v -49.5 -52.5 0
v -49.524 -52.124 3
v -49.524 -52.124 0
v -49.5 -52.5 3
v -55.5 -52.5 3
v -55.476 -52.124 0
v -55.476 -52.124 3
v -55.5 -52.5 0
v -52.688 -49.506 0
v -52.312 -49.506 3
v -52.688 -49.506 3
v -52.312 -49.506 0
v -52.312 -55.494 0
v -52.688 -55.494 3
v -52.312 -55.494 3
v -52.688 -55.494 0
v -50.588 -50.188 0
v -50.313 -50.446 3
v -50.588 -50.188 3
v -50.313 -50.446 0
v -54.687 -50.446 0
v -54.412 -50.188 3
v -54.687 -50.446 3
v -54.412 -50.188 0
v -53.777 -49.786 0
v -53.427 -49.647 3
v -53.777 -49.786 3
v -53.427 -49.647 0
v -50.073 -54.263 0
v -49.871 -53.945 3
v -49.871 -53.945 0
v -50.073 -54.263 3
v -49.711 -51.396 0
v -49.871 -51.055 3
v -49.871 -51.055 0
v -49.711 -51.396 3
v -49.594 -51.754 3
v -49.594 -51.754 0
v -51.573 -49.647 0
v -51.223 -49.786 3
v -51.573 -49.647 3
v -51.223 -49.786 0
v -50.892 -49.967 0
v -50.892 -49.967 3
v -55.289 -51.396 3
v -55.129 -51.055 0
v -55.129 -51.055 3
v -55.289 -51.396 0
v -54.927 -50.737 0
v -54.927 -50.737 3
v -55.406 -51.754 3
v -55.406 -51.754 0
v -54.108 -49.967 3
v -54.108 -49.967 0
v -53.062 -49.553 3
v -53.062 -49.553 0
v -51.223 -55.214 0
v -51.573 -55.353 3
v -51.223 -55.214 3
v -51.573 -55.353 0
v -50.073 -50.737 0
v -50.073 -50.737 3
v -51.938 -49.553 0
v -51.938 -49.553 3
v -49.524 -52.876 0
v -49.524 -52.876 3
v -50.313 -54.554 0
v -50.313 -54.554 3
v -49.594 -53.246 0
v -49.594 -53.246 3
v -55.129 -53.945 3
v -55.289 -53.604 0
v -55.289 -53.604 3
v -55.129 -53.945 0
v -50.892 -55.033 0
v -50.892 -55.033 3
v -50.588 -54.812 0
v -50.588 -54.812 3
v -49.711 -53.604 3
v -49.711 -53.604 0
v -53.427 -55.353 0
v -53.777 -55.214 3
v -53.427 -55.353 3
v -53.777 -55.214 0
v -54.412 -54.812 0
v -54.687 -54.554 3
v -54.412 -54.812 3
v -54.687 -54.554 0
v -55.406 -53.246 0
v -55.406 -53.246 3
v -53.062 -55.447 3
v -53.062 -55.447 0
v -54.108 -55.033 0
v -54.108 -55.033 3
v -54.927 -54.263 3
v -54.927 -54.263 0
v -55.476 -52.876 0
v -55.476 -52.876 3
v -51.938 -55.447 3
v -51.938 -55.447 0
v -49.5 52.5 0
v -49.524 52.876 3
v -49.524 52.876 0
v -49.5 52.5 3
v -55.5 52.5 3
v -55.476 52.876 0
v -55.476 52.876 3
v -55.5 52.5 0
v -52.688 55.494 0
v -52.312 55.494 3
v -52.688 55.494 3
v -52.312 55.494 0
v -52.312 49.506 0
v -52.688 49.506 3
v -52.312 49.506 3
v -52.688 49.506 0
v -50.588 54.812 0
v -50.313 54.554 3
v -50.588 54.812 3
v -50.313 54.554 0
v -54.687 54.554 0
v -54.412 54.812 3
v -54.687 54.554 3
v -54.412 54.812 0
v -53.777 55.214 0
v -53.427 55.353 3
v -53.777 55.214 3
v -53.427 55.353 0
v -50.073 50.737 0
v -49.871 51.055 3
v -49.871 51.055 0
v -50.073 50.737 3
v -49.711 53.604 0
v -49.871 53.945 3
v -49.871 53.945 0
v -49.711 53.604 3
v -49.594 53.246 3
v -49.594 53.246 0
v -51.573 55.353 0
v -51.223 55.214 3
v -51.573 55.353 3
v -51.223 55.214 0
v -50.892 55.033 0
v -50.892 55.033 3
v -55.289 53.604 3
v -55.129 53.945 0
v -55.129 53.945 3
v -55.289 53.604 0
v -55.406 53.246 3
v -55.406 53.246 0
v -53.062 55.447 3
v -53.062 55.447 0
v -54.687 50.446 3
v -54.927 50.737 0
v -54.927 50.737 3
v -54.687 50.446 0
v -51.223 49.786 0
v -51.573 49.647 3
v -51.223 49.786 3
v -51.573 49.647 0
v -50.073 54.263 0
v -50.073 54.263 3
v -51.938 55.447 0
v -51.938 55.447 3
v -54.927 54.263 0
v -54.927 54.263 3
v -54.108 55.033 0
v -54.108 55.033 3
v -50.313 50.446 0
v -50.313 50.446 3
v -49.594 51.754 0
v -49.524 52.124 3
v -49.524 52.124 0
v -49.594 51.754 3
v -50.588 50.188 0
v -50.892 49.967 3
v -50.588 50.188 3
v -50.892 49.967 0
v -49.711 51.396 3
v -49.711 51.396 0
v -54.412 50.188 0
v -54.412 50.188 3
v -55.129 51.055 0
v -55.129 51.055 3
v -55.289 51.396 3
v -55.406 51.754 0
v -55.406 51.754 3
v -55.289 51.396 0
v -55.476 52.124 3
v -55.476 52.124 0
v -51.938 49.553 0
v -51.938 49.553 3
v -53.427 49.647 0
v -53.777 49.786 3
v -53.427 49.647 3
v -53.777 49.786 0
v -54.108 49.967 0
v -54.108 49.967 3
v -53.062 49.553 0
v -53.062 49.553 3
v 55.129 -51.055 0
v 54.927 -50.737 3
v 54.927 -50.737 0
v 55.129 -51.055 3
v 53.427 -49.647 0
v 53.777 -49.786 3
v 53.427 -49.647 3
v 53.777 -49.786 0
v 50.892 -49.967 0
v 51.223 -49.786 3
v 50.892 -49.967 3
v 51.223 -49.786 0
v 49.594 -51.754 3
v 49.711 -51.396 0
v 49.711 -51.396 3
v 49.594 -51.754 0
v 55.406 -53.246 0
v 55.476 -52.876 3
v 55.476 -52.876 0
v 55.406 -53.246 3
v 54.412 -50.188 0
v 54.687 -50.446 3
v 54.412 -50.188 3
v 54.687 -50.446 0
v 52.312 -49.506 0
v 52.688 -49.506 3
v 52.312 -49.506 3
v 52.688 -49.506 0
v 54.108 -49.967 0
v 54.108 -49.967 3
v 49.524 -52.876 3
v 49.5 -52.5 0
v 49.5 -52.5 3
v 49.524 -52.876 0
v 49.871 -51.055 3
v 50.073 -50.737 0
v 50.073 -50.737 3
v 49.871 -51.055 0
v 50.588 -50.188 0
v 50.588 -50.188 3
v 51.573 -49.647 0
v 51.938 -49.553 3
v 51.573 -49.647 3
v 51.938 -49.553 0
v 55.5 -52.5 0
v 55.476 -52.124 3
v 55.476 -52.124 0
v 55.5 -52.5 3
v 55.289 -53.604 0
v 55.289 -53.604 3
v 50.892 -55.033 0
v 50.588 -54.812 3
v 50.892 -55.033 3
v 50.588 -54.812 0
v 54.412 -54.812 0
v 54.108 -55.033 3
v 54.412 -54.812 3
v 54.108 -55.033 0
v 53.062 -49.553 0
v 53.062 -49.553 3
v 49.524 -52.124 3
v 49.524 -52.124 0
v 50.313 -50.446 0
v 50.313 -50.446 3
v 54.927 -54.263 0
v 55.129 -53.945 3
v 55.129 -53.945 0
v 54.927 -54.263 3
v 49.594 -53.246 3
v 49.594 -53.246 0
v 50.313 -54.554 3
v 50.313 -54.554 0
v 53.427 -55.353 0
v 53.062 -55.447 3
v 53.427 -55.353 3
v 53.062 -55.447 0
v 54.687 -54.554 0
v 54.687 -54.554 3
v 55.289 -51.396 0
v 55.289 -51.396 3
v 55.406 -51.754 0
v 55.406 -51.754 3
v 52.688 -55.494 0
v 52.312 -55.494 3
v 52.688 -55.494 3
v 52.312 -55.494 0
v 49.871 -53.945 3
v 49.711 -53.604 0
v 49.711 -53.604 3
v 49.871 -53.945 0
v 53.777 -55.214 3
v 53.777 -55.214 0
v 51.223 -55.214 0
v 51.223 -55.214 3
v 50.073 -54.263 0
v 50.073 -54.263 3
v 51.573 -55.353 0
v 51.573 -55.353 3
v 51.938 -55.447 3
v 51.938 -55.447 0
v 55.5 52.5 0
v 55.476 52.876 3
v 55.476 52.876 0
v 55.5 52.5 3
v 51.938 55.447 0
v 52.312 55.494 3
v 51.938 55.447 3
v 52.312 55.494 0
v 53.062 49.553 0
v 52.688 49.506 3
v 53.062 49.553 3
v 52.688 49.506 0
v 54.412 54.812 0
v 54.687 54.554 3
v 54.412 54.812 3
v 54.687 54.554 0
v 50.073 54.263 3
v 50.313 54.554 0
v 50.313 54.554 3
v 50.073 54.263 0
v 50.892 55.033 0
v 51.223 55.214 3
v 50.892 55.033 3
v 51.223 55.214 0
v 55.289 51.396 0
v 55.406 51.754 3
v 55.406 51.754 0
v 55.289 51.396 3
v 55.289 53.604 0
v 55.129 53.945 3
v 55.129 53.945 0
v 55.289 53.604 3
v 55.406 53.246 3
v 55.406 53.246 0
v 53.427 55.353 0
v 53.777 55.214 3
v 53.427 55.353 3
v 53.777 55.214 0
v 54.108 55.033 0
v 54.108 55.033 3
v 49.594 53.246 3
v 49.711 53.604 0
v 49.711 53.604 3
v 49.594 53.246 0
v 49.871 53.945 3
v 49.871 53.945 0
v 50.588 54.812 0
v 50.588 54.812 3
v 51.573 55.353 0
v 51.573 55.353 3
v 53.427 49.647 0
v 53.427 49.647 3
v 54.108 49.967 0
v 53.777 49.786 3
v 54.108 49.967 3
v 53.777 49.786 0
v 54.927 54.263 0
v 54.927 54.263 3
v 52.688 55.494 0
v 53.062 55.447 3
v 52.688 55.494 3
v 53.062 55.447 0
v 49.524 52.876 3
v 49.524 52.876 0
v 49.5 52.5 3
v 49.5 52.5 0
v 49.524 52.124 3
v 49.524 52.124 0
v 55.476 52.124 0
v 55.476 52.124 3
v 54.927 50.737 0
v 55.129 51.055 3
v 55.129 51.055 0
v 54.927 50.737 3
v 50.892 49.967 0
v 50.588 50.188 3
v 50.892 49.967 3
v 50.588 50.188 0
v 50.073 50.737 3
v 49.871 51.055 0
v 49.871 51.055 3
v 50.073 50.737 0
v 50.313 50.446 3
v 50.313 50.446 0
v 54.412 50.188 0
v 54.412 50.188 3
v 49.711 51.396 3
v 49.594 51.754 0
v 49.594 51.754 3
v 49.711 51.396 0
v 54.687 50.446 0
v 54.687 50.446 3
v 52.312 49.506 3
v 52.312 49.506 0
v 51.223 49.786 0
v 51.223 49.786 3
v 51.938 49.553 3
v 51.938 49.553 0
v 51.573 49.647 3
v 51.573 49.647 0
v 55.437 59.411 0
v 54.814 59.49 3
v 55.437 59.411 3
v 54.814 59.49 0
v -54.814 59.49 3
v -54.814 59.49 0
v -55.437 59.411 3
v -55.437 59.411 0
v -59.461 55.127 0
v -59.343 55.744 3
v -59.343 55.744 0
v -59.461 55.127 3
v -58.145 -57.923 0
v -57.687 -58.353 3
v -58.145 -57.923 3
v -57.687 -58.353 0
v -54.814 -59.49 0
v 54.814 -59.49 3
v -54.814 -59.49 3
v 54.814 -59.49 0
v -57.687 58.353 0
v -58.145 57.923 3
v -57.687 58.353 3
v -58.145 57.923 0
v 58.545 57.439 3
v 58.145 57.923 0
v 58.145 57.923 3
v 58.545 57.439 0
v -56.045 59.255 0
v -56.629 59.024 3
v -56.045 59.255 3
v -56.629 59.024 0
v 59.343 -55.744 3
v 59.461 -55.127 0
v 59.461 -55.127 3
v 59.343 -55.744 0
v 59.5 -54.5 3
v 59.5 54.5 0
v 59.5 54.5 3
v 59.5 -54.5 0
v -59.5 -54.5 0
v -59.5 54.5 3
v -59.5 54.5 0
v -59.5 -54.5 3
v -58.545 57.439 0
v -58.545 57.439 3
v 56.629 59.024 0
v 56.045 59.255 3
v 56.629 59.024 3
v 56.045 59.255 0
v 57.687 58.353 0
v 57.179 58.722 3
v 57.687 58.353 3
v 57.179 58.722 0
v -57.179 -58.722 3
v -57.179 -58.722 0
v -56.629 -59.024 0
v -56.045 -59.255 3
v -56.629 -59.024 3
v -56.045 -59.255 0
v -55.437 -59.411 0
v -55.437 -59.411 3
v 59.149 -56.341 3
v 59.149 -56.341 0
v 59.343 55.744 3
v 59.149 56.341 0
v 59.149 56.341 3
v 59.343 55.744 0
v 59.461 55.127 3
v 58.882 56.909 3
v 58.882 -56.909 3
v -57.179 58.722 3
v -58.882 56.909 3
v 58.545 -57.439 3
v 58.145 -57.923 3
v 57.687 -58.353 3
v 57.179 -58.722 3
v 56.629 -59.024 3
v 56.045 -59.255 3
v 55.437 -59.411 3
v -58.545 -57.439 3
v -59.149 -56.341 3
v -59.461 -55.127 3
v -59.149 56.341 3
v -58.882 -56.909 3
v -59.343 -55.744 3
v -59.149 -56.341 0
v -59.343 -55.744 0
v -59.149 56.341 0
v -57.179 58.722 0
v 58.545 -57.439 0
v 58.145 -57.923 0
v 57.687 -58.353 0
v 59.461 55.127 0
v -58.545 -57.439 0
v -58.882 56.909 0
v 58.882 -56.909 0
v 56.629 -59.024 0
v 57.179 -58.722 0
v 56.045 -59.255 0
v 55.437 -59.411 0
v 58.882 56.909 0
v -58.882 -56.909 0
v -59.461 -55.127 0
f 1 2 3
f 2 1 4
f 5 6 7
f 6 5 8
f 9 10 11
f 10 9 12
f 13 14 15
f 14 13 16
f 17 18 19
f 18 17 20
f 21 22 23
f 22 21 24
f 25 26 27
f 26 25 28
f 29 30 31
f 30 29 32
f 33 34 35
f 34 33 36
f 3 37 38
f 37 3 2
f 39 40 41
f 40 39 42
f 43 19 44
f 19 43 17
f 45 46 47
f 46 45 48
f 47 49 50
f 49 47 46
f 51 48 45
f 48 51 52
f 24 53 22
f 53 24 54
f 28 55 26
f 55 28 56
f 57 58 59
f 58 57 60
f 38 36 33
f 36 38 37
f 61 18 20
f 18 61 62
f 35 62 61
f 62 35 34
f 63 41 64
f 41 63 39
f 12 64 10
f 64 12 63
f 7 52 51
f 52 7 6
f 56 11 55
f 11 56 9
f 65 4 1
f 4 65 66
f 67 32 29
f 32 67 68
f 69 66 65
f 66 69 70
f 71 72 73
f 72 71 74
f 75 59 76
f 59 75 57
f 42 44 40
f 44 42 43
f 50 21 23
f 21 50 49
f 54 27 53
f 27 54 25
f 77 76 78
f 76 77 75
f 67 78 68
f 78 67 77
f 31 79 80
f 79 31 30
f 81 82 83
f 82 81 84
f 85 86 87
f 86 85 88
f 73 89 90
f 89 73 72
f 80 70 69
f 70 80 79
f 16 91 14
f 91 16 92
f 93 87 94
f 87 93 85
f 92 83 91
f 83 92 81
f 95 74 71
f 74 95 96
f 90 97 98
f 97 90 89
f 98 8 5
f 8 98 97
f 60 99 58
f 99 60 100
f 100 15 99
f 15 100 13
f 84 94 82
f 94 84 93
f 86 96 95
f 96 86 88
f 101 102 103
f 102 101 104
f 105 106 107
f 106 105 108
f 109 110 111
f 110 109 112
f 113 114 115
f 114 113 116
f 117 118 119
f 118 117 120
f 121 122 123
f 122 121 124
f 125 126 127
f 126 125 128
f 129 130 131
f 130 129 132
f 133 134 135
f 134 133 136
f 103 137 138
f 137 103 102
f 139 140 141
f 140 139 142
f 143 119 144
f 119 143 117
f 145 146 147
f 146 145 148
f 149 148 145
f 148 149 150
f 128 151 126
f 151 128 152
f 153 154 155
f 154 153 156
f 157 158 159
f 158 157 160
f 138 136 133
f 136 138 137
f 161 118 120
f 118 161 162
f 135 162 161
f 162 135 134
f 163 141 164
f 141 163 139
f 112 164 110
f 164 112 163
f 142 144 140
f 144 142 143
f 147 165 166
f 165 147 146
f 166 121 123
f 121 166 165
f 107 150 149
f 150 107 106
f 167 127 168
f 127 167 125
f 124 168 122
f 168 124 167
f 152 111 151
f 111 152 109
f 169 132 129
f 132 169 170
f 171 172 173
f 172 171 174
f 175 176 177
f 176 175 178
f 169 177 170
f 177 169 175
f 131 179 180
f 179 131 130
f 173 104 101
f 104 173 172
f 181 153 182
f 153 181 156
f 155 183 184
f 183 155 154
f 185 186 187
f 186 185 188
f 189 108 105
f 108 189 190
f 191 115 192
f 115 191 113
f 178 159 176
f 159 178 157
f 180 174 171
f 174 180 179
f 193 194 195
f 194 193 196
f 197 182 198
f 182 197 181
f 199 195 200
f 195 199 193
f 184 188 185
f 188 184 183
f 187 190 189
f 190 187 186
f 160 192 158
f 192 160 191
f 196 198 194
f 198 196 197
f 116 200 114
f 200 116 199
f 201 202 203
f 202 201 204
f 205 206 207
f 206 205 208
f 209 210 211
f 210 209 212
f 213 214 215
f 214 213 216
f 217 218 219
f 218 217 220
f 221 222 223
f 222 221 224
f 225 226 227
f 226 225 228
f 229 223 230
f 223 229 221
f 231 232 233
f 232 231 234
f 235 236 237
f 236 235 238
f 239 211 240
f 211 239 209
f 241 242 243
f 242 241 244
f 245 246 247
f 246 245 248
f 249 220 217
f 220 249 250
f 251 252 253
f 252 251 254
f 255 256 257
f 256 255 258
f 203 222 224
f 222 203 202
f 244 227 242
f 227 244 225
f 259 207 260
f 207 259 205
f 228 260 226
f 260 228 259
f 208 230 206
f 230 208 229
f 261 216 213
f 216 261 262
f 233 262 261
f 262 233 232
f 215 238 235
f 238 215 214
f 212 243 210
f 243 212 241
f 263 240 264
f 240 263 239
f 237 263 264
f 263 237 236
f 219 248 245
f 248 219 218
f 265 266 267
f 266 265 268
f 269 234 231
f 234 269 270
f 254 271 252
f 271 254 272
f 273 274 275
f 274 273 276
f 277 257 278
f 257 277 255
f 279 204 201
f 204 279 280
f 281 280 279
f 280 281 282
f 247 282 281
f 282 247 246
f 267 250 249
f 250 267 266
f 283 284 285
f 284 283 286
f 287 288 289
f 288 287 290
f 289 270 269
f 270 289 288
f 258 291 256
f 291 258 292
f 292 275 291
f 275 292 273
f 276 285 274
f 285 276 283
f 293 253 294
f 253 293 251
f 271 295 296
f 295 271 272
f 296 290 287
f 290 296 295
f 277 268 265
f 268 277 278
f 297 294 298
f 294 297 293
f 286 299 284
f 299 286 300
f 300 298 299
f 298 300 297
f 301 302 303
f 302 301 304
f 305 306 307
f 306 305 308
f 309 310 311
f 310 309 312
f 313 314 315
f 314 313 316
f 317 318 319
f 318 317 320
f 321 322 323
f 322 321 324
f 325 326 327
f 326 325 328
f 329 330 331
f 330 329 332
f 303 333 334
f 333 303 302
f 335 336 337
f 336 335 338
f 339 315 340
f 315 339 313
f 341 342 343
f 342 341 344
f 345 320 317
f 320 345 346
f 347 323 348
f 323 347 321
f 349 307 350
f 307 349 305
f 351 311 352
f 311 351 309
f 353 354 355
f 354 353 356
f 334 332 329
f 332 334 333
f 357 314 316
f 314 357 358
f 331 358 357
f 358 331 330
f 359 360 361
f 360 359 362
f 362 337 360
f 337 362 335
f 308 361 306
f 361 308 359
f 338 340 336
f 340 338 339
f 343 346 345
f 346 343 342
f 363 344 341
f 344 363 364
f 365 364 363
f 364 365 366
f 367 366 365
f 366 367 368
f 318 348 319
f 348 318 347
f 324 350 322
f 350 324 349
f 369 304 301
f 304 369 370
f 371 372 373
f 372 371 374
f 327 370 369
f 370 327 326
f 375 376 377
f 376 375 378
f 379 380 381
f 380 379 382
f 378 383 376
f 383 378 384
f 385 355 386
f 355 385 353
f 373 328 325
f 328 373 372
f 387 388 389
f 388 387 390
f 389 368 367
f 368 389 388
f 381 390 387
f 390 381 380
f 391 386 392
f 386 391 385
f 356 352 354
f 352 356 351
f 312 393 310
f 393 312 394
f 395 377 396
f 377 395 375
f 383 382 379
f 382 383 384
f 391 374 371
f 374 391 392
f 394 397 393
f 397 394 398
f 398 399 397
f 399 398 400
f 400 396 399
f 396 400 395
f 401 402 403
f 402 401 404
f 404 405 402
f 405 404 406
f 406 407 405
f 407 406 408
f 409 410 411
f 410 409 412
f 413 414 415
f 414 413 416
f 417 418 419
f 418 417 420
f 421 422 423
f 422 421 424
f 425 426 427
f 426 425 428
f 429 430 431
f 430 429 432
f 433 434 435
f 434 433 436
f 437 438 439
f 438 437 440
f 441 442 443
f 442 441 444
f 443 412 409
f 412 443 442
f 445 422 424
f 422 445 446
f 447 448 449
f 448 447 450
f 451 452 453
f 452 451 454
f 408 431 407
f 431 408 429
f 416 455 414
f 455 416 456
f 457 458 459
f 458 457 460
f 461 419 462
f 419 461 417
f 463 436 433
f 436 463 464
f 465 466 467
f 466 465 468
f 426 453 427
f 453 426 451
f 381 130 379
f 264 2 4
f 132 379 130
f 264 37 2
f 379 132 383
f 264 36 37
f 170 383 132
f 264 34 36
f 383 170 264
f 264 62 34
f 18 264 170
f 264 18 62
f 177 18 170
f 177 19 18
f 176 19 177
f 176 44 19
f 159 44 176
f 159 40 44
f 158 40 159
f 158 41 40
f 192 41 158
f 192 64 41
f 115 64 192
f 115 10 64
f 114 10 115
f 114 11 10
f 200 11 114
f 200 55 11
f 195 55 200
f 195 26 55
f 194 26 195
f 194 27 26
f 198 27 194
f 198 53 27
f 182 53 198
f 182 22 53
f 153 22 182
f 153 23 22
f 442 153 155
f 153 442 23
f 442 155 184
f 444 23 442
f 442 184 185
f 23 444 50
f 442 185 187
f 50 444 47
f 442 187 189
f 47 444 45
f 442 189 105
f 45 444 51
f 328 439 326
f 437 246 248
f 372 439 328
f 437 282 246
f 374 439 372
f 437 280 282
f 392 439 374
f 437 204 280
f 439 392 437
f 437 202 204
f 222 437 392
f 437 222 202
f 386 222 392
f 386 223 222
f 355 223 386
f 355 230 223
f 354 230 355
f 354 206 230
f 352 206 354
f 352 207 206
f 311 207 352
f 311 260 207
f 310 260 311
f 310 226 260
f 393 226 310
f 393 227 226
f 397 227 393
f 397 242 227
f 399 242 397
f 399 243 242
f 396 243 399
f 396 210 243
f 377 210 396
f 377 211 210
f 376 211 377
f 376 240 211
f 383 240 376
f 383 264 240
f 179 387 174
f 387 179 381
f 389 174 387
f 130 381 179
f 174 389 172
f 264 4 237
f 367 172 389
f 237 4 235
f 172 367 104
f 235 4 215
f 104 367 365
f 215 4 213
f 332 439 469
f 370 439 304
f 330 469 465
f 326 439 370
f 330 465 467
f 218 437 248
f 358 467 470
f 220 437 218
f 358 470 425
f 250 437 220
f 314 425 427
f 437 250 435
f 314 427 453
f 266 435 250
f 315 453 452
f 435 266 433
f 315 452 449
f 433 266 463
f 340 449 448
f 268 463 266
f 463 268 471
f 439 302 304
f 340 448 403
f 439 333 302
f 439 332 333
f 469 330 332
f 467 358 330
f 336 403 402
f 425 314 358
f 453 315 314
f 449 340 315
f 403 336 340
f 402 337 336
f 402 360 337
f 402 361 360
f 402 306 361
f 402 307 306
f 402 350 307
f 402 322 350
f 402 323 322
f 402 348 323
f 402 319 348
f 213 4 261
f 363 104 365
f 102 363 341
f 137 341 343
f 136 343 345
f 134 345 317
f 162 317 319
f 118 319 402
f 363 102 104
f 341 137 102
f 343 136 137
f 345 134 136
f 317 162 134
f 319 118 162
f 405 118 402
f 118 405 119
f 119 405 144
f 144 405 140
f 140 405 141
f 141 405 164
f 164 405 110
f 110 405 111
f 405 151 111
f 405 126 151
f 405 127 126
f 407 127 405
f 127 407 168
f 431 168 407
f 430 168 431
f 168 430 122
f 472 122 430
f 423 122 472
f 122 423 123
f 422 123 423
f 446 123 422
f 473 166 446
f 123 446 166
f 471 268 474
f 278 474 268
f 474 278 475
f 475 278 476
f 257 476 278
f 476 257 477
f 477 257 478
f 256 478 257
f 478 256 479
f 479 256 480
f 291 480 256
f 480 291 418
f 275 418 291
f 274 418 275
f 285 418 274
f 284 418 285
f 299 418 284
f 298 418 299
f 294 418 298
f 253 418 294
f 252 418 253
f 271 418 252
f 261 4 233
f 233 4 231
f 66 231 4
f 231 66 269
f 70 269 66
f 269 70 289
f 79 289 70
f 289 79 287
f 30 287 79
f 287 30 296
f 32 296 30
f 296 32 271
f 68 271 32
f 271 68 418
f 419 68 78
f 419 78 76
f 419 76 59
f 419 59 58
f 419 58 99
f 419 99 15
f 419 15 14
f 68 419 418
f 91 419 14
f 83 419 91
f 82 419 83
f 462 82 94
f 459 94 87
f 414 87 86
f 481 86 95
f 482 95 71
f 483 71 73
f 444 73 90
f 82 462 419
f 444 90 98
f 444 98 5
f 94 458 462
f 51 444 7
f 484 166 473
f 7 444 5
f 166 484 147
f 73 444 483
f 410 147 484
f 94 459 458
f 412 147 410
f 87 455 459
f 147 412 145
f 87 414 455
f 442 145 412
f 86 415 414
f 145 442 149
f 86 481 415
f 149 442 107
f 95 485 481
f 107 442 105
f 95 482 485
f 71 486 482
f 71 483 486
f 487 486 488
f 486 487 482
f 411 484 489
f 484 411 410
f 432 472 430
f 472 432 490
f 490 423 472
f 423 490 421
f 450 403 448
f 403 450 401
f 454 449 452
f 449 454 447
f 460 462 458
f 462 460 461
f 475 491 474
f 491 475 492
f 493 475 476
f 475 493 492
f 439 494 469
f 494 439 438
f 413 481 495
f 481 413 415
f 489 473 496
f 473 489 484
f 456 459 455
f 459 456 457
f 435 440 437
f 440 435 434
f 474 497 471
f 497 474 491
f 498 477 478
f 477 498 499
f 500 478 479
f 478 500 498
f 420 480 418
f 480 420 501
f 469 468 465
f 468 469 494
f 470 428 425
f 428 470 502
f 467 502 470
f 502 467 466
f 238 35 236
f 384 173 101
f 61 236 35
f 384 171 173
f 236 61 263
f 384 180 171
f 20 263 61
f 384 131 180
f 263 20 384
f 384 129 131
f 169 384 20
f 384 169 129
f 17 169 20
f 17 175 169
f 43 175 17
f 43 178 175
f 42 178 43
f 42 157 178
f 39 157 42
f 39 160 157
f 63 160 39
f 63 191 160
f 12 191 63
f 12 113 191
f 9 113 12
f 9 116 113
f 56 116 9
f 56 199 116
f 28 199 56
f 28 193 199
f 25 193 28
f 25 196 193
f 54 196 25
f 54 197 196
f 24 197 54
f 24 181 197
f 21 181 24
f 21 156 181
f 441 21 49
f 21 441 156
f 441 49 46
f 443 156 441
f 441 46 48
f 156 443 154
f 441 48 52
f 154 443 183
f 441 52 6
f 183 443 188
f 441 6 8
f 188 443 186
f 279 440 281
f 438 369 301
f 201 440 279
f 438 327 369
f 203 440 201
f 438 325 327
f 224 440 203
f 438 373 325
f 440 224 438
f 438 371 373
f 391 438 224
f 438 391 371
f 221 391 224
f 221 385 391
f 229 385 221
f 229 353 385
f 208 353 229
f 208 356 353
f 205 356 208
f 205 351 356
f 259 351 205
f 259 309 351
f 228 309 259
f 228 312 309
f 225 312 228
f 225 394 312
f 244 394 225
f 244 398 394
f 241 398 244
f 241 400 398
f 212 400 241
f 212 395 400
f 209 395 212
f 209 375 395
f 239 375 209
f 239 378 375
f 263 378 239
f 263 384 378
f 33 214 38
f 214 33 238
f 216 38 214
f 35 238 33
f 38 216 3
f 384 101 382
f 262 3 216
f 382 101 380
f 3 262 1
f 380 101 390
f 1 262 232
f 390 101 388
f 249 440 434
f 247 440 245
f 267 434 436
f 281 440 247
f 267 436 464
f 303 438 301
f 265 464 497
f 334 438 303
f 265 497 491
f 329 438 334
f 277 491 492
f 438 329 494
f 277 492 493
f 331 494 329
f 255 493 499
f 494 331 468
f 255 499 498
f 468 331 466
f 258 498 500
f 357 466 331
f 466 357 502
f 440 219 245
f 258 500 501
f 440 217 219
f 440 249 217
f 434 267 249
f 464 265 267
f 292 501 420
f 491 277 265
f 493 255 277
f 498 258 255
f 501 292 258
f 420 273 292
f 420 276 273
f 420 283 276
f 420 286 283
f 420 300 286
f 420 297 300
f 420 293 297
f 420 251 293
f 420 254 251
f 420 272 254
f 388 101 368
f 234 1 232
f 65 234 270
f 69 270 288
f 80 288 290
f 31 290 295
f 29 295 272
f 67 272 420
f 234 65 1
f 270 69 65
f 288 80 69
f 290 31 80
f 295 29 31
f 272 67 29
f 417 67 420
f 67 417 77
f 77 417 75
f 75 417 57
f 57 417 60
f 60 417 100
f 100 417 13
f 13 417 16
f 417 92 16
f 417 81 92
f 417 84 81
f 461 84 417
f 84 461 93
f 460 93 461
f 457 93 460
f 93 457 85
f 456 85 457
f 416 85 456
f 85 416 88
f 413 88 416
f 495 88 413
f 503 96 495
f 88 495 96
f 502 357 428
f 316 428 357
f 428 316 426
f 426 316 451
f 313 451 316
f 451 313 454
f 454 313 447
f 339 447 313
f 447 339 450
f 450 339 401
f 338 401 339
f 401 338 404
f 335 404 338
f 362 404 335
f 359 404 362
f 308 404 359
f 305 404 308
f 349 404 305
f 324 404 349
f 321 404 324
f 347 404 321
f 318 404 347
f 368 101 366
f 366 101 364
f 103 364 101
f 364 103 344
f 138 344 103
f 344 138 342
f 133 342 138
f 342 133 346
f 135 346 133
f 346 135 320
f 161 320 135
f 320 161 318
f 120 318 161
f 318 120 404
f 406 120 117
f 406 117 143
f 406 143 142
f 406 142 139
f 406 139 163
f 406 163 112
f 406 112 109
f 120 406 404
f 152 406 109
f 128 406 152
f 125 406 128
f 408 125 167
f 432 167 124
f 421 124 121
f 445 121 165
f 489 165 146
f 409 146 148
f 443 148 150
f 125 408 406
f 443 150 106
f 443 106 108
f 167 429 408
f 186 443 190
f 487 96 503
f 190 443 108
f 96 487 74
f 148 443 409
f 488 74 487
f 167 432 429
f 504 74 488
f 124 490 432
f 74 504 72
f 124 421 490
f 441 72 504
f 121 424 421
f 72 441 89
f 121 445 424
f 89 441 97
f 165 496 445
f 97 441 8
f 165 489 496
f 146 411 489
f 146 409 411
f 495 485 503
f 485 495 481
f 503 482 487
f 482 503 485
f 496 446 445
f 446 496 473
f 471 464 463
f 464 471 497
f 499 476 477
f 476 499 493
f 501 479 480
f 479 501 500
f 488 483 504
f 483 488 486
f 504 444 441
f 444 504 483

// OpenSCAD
$fn = 50;


difference() {
	union() {
		hull() {
			translate(v = [-54.5000000000, 54.5000000000, 0]) {
				cylinder(h = 3, r = 5);
			}
			translate(v = [54.5000000000, 54.5000000000, 0]) {
				cylinder(h = 3, r = 5);
			}
			translate(v = [-54.5000000000, -54.5000000000, 0]) {
				cylinder(h = 3, r = 5);
			}
			translate(v = [54.5000000000, -54.5000000000, 0]) {
				cylinder(h = 3, r = 5);
			}
		}
	}
	union() {
		translate(v = [-52.5000000000, -52.5000000000, -100.0000000000]) {
			cylinder(h = 200, r = 3.0000000000);
		}
		translate(v = [-52.5000000000, 52.5000000000, -100.0000000000]) {
			cylinder(h = 200, r = 3.0000000000);
		}
		translate(v = [52.5000000000, -52.5000000000, -100.0000000000]) {
			cylinder(h = 200, r = 3.0000000000);
		}
		translate(v = [52.5000000000, 52.5000000000, -100.0000000000]) {
			cylinder(h = 200, r = 3.0000000000);
		}
	}
}
